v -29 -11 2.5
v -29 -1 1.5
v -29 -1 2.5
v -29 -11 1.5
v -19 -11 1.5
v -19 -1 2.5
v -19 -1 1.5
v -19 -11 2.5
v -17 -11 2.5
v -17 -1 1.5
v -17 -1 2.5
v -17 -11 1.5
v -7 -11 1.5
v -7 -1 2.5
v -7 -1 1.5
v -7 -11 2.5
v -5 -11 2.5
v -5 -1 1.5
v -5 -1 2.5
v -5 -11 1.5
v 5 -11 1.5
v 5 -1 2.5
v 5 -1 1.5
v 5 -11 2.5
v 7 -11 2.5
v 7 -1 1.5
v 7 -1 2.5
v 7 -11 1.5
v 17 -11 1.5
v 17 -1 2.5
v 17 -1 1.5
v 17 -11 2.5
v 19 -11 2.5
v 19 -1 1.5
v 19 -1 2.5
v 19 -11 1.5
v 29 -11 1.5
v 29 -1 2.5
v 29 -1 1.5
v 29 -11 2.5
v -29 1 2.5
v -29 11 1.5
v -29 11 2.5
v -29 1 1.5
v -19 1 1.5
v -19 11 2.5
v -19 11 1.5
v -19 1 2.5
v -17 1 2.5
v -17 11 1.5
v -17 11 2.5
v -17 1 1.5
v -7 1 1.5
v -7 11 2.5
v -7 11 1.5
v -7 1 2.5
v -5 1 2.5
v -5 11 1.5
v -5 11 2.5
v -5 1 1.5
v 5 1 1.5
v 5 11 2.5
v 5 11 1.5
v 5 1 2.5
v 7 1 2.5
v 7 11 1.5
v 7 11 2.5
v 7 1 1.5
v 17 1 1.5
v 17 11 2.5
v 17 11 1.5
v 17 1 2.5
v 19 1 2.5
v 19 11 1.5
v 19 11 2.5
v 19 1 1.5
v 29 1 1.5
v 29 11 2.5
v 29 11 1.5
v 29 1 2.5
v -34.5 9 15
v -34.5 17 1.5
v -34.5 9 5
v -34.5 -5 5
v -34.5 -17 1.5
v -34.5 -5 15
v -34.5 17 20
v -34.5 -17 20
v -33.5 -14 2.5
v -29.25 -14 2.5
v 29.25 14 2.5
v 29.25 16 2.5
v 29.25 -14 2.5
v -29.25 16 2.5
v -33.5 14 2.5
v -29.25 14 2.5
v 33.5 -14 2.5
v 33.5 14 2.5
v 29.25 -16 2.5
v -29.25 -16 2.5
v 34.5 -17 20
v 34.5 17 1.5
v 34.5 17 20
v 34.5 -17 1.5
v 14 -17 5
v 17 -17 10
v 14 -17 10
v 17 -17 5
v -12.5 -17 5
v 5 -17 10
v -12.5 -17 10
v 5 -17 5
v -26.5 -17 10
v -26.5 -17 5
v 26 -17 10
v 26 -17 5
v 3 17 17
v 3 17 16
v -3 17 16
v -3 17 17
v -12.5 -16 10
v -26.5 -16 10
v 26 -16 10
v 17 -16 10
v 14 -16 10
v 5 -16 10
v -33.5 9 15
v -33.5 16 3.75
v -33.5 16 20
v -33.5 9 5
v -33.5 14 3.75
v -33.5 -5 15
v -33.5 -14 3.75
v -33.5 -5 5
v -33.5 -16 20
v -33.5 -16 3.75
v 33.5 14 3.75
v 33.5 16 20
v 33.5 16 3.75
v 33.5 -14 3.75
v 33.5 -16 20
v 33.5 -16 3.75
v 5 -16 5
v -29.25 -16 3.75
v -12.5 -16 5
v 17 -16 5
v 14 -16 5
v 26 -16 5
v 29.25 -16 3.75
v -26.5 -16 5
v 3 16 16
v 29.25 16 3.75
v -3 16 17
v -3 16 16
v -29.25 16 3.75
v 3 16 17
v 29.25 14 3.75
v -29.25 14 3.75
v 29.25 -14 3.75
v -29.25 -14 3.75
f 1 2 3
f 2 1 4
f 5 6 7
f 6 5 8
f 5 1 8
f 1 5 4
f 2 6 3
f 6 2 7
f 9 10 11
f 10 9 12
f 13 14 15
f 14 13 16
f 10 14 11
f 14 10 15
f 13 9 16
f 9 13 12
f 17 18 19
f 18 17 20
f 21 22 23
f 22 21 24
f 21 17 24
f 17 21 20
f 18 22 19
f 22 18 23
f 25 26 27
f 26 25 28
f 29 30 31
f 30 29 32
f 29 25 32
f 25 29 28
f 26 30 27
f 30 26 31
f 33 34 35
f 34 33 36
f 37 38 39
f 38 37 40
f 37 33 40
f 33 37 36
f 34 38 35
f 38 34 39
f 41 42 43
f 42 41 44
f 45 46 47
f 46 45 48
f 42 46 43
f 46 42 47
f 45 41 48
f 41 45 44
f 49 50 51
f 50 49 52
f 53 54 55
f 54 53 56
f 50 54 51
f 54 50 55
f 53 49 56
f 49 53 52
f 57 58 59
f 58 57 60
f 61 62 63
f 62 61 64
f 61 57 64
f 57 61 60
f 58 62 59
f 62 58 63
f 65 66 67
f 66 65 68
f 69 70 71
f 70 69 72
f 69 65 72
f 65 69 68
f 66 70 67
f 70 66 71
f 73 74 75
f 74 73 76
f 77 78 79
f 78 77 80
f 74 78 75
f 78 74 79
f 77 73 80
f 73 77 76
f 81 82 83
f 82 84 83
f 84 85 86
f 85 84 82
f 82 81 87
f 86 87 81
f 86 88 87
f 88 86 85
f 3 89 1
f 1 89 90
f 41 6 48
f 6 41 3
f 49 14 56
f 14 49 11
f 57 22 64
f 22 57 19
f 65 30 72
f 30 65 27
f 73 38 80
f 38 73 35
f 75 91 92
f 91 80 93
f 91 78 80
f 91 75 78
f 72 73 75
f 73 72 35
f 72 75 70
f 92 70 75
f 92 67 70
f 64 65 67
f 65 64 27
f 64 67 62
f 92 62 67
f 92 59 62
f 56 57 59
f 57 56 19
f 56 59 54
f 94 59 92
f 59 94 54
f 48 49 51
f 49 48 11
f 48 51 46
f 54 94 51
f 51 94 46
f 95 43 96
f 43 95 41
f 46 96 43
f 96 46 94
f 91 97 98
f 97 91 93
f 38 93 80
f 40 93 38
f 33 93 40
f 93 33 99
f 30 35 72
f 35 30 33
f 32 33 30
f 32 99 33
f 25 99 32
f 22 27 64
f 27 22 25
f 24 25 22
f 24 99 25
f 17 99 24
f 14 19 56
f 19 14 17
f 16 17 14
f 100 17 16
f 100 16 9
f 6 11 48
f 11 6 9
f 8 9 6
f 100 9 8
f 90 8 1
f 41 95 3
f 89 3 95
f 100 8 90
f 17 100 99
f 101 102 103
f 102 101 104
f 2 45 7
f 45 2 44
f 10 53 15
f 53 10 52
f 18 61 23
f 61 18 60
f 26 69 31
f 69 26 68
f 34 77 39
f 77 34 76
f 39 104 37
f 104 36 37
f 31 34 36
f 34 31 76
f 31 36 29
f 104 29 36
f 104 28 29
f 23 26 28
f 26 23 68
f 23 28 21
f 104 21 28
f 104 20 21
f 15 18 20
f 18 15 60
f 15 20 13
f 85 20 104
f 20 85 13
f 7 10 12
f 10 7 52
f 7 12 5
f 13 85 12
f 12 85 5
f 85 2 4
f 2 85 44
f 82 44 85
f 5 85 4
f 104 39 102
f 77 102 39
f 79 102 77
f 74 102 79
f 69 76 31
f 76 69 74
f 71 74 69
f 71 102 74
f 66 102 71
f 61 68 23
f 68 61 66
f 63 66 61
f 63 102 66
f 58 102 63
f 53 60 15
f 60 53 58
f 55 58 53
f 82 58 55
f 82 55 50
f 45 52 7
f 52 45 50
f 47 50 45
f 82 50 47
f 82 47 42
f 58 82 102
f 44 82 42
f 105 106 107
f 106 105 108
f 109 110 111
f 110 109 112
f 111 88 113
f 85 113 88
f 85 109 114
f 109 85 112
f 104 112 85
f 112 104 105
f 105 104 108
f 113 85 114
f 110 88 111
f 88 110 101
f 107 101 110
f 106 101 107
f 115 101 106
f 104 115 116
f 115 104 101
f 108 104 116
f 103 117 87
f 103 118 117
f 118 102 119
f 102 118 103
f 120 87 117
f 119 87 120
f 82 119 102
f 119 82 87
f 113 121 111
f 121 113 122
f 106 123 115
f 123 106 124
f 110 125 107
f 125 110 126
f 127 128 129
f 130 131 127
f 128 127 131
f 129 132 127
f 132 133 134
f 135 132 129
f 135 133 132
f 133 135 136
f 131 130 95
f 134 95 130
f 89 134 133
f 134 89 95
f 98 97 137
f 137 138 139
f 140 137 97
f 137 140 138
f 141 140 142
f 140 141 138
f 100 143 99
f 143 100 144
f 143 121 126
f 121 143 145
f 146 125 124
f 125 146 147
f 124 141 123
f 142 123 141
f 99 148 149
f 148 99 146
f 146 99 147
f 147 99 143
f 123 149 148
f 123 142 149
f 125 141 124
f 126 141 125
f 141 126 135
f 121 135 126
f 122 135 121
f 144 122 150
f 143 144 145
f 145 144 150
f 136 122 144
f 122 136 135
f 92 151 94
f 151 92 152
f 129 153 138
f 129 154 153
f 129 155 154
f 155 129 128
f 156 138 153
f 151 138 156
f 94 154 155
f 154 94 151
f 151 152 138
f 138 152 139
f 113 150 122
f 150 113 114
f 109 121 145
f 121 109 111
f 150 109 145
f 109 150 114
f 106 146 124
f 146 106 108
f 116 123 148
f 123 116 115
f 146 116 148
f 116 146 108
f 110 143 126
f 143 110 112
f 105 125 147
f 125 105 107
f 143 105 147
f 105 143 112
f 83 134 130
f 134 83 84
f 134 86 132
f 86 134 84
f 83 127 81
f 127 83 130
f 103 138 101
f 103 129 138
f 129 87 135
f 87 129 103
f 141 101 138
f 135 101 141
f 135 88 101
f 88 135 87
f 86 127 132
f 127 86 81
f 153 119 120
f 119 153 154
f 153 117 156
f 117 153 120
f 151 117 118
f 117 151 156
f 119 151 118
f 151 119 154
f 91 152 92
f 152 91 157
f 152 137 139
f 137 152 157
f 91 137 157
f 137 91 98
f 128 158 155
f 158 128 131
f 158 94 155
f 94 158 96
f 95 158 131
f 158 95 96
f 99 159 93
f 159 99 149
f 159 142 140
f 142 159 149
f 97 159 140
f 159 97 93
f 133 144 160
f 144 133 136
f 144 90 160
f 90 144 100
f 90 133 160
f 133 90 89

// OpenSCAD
//Bottom
translate([0,0,2]) 
{
    //Drill holes at the bottom
    difference()
    {
        cube([69,34,1], true);
        for (y=[-6:12:6])
        {
            for (x=[-24:12:24])
            {
                translate([x,y,0])
                    cube([10,10,2], true);
            }
        }
    }
}

//Sides
translate([0,0,6]) 
{
    difference()
    {
        cube([69,34,8], true);
        cube([67,32,8], true);

        //Place for the miniHDMI
        translate([-19.5,-15,4])
            cube([14,32,10], true);
        //Place for the 1st microUSB
        translate([21.5,-15,4])
            cube([9,32,10], true);
        //Place for the 2st microUSB
        translate([9.5,-15,4])
            cube([9,32,10], true);
        //microSD card
        translate([-33.5,2,4])
            cube([2,14,10], true);
        //Leave space for the camera
        translate([33,0,1])
            cube([1,20,10], true);
    }
}

//top sides
translate([0,0,15]) 
{
    difference()
    {
        cube([69,34,10], true);
        cube([67,32,10], true);
        
        //microSD card
        translate([-33.5,2,-2.5])
            cube([2,14,5], true);
        
        //Placeholder for the hanger of the top of the case
        translate([0,16.5,1.5])
            cube([6,1,1], true);
    }
}

//Holders
translate([31.5,15,3])
    cube([4.5,2,1.5], true);
translate([-31.5,15,3])
    cube([4.5,2,1.5], true);

translate([31.5,-15,3])
    cube([4.5,2,1.5], true);
translate([-31.5,-15,3])
    cube([4.5,2,1.5], true);
